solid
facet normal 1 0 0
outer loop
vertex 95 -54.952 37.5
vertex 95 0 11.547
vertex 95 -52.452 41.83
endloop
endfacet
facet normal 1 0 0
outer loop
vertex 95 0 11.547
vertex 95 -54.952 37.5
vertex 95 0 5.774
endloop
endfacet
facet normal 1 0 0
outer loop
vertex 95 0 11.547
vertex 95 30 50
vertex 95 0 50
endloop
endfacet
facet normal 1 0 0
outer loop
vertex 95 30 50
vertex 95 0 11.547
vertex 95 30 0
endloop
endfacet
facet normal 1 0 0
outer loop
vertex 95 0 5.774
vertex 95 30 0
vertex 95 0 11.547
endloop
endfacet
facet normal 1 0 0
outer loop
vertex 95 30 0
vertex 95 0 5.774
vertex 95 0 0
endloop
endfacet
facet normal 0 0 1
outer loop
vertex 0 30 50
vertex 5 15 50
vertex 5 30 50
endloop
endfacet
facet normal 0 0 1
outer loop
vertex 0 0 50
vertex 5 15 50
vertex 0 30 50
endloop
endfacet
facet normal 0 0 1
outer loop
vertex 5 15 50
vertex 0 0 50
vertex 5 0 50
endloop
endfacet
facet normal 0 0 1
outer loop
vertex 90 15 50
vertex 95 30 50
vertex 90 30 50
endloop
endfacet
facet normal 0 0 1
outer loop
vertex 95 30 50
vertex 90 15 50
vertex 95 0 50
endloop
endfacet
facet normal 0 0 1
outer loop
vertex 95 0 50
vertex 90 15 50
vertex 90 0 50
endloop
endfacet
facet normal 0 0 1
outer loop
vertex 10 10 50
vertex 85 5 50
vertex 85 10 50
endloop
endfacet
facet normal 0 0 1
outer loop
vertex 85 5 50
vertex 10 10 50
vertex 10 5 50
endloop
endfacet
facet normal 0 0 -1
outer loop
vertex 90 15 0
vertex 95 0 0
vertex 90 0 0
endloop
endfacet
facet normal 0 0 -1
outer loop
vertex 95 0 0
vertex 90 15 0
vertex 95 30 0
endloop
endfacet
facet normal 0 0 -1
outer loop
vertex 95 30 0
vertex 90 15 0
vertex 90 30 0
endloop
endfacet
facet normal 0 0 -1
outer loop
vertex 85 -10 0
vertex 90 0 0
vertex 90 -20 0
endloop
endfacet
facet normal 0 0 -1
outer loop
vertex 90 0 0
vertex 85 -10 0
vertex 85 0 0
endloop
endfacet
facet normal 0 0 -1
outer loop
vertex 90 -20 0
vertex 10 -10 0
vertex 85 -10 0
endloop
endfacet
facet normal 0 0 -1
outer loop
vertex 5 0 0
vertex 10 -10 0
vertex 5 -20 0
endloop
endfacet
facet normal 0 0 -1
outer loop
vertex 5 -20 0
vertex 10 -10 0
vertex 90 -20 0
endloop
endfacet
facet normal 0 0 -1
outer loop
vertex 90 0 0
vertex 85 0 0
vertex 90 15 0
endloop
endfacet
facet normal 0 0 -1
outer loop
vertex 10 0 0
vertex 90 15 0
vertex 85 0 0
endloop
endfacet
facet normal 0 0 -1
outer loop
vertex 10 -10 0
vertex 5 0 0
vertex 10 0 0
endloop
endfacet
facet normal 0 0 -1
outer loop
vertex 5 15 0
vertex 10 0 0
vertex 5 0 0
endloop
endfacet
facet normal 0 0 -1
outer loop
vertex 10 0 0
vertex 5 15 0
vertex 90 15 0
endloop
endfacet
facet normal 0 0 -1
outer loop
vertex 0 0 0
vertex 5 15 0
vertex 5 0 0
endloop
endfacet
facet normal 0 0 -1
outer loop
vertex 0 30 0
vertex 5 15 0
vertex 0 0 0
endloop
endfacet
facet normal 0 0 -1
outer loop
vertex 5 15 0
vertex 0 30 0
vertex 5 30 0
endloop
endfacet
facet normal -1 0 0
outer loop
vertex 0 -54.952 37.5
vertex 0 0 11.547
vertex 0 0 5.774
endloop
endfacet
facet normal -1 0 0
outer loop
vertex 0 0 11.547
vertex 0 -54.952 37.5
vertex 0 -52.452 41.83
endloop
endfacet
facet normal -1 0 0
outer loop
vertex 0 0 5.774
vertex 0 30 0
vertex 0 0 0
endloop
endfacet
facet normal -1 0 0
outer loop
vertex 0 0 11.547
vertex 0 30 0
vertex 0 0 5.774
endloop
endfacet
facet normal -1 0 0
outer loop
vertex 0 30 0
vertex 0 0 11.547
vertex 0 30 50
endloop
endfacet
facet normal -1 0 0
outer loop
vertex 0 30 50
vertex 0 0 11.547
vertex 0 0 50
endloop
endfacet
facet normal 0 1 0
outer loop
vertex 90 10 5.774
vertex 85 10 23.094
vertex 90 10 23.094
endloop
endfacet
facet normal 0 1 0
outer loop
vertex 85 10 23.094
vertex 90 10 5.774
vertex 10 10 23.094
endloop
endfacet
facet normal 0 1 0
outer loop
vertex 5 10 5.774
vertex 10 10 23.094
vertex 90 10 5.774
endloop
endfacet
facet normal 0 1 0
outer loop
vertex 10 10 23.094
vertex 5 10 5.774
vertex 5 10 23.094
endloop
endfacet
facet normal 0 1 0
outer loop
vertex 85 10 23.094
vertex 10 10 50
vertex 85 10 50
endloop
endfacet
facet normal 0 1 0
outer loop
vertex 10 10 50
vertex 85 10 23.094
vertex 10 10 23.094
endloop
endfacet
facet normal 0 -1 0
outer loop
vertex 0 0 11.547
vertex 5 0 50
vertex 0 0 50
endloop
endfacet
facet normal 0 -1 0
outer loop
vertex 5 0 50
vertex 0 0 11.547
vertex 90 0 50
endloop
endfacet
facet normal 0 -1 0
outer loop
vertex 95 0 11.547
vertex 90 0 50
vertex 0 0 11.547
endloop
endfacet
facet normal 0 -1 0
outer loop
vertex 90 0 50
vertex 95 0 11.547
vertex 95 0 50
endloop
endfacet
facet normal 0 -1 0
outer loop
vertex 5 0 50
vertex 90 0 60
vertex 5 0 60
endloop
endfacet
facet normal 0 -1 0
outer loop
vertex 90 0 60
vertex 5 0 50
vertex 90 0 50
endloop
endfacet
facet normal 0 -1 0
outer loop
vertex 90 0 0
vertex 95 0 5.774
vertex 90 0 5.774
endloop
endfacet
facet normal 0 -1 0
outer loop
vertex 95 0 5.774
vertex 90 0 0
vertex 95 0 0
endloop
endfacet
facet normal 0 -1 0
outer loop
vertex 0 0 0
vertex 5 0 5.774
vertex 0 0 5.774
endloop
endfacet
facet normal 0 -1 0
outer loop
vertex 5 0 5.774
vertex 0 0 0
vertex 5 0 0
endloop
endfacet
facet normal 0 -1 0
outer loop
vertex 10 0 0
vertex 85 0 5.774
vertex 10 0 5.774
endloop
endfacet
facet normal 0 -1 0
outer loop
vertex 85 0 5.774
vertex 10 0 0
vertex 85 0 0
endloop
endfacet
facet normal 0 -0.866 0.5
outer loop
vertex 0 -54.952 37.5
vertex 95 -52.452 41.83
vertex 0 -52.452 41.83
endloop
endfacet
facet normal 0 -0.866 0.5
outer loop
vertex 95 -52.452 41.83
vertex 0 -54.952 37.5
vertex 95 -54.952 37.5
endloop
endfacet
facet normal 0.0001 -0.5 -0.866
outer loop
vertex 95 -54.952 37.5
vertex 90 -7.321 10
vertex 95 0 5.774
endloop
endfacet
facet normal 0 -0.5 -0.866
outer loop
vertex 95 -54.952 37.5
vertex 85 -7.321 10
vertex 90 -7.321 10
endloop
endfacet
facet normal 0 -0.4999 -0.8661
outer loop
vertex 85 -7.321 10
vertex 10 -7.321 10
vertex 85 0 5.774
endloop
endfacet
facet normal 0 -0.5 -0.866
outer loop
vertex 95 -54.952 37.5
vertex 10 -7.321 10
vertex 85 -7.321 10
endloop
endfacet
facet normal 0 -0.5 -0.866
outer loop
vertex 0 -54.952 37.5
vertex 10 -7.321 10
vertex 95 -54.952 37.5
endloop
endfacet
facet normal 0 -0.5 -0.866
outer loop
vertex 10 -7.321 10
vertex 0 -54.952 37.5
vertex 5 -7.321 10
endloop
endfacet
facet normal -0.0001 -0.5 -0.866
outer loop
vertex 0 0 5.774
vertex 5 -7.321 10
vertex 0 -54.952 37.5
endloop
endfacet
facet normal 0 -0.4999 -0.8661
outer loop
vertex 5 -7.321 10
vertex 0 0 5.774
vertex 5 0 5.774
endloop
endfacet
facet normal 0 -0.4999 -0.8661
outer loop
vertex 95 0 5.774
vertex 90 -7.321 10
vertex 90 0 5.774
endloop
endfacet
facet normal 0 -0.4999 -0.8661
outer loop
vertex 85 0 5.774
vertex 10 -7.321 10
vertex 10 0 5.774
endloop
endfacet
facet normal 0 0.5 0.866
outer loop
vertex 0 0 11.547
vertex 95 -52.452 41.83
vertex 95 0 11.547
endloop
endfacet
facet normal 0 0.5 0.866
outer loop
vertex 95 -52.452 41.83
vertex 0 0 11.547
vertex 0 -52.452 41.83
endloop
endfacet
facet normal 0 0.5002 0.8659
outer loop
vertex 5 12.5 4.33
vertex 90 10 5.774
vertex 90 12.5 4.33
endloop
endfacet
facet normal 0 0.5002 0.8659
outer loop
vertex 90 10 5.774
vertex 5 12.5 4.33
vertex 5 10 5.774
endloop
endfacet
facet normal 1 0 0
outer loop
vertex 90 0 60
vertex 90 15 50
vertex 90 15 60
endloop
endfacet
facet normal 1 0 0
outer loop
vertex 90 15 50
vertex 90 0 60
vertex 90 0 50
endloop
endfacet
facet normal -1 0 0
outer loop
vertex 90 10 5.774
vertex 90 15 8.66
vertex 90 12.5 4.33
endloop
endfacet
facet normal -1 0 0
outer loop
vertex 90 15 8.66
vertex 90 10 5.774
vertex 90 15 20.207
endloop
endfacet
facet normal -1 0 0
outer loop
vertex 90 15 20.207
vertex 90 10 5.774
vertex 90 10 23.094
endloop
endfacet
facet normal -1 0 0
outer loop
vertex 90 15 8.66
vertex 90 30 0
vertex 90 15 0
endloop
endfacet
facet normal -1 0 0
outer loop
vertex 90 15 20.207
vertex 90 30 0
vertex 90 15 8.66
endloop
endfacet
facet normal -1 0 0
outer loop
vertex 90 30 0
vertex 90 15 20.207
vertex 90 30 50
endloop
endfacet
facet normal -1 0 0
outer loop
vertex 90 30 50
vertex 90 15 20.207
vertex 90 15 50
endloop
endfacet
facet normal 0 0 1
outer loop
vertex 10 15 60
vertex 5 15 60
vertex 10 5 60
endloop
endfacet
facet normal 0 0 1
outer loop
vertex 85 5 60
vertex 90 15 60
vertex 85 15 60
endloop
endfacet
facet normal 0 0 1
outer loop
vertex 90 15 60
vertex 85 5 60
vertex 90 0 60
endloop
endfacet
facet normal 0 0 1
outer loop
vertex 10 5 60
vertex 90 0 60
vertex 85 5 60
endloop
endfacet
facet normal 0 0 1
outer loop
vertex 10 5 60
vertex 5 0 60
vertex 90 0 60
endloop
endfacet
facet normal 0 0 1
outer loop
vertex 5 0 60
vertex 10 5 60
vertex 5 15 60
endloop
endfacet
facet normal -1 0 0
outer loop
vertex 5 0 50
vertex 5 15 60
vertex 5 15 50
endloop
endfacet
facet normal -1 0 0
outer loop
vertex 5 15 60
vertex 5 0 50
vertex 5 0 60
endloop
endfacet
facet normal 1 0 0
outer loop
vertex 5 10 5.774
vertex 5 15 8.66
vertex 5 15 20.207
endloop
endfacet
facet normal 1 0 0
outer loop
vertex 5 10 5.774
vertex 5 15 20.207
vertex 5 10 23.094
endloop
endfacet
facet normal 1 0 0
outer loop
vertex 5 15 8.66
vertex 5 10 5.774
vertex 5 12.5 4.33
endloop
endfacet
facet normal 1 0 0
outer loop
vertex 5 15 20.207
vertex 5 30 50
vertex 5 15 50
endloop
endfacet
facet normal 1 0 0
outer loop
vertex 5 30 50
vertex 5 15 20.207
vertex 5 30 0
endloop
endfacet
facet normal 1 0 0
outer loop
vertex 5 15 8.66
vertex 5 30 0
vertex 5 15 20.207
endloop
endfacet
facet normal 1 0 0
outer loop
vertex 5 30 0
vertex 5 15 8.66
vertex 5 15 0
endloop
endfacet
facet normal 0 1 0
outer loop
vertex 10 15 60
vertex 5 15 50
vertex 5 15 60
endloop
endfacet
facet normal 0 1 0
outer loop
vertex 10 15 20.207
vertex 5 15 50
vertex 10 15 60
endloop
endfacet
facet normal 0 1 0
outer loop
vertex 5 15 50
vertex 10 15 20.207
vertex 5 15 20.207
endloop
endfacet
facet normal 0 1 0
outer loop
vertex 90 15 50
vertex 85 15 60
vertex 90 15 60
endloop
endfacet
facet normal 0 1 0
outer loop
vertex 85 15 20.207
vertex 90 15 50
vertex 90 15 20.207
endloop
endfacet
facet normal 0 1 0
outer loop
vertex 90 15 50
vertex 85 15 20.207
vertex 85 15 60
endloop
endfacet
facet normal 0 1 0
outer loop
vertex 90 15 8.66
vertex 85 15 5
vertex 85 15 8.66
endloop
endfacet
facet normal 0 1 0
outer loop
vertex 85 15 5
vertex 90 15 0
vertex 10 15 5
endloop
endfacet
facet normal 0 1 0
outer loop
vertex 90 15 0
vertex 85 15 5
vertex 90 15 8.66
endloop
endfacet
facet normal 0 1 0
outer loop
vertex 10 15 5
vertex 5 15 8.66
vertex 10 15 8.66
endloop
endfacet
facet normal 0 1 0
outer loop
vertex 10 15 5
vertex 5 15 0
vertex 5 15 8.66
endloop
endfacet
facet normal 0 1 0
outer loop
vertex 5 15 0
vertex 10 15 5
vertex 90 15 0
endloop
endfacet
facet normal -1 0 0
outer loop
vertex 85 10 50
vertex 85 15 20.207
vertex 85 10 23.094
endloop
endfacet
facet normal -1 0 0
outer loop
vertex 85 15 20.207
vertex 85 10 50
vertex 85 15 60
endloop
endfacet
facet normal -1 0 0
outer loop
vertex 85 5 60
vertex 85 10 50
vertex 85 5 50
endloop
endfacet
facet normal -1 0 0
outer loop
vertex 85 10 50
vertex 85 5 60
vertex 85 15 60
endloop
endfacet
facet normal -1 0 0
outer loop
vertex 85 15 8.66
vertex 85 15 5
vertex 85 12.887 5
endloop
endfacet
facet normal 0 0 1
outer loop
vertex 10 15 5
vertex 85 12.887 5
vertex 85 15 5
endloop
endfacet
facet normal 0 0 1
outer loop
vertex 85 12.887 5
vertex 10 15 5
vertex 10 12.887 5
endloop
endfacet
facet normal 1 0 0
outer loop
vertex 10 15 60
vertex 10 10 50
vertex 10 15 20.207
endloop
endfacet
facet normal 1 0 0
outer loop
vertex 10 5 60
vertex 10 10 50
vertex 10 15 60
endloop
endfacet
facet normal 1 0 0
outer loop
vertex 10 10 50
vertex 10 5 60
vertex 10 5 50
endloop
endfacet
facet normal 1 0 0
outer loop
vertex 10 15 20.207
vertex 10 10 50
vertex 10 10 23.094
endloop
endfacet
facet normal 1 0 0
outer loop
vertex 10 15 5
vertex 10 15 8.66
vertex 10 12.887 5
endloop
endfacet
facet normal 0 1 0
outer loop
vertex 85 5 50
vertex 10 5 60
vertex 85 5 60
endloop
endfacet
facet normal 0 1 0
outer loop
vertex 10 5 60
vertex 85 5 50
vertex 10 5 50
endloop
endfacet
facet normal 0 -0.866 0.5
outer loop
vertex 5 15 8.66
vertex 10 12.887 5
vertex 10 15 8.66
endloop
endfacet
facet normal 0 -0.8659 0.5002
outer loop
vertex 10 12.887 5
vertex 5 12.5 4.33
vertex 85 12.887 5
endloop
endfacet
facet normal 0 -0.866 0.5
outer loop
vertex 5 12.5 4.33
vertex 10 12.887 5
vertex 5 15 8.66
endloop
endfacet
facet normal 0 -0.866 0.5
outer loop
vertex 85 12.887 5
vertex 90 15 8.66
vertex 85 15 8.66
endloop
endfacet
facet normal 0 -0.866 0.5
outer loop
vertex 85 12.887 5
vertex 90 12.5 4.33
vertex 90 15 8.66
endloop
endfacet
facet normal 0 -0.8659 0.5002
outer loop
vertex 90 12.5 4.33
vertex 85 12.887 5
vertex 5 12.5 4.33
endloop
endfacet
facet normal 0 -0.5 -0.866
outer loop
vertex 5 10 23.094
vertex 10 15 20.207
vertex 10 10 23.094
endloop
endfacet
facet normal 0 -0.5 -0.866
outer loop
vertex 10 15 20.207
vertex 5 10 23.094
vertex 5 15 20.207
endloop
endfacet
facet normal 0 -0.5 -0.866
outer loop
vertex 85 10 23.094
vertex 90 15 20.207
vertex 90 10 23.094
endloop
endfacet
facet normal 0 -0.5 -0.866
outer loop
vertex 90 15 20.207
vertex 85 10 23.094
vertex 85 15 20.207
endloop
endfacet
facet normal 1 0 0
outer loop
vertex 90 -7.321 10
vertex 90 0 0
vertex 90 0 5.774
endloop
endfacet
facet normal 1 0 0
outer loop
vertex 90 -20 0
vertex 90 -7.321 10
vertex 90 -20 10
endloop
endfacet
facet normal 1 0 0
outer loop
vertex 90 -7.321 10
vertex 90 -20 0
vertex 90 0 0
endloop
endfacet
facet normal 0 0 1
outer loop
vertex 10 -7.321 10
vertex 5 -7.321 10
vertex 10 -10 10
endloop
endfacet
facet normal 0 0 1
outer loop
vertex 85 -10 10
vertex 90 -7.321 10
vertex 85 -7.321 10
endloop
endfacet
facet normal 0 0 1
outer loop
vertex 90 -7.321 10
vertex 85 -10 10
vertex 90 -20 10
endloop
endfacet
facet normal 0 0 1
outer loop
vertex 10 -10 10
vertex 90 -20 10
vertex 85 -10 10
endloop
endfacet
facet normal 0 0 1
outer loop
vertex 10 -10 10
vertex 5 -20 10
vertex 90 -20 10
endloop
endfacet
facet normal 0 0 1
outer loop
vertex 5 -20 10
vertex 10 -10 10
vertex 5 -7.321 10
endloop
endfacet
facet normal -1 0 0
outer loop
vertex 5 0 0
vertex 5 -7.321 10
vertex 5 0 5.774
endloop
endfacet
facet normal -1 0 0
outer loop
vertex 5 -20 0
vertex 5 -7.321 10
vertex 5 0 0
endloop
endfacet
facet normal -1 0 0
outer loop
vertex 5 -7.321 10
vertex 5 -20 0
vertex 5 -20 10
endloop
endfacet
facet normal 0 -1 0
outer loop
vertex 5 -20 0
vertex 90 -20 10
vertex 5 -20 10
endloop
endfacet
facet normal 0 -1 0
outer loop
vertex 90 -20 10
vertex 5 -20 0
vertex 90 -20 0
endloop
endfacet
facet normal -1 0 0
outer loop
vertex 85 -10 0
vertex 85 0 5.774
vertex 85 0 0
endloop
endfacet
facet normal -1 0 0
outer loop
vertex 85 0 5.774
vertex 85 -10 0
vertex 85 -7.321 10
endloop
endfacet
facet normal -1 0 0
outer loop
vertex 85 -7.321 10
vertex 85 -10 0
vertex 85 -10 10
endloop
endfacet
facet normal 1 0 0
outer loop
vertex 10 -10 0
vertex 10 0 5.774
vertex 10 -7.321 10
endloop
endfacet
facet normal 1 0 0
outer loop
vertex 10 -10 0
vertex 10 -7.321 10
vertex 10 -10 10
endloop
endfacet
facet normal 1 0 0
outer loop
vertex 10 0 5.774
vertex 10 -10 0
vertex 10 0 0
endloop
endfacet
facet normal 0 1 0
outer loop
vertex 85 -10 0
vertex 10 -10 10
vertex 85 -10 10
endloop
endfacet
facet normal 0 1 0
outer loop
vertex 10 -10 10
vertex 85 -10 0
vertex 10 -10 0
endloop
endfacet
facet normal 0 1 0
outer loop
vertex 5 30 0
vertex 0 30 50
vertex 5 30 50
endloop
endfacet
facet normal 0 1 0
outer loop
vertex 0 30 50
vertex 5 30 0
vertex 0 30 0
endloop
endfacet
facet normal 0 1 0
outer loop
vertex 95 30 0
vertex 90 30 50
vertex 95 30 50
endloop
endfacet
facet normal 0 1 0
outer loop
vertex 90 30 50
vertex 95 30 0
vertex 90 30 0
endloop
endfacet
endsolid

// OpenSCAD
// SUPORTE DE TELEMÓVEL OPENSCAD
// Parâmetros personalizáveis

largura_tele = 75;       // Largura do telemóvel (mm)
altura_tele = 150;       // Altura do telemóvel (mm)
espessura_tele = 10;     // Espessura máxima do telemóvel (mm)
angulo_inclinacao = 60;  // Ângulo de inclinação (graus)

// Base do suporte
module base() {
    color("Yellow")
    // Base principal
    cube([largura_tele + 20, 10, 50]);
    
    // Suporte traseiro
    translate([0, 10, 0])
    rotate([angulo_inclinacao, 0, 0])
    cube([largura_tele + 20, 5, altura_tele/2]);
}

// Canal para telemóvel
module canal_tele() {
    color("Yellow")
    difference() {
        // Bloco principal
        cube([largura_tele + 10, 15, 60]);
        
        // Canal do telemóvel
        translate([5, 5, 5])
        cube([largura_tele, 15, 55]);
        
        // Inclinação do canal
        translate([-1, 10, 0])
        rotate([angulo_inclinacao, 0, 0])
        cube([largura_tele + 12, 20, 80]);
    }
}

// Suporte inferior
module suporte_inferior() {
    color("Yellow")
    difference() {
        // Base do suporte
        cube([largura_tele + 10, 20, 10]);
        
        // Ranhura para telemóvel
        translate([5, 10, -1])
        cube([largura_tele, 15, 12]);
    }
}
color("Yellow")
// COMPOSIÇÃO FINAL
union() {
    // Base
    base();
    
    // Canal do telemóvel
    translate([5, 0, 0])
    canal_tele();
    
    // Suporte inferior
    translate([5, -20, 0])
    suporte_inferior();
    
    // Reforços laterais
    for(x = [0, largura_tele + 15]) {
        translate([x, 0, 0])
        cube([5, 30, 50]);
    }
}
